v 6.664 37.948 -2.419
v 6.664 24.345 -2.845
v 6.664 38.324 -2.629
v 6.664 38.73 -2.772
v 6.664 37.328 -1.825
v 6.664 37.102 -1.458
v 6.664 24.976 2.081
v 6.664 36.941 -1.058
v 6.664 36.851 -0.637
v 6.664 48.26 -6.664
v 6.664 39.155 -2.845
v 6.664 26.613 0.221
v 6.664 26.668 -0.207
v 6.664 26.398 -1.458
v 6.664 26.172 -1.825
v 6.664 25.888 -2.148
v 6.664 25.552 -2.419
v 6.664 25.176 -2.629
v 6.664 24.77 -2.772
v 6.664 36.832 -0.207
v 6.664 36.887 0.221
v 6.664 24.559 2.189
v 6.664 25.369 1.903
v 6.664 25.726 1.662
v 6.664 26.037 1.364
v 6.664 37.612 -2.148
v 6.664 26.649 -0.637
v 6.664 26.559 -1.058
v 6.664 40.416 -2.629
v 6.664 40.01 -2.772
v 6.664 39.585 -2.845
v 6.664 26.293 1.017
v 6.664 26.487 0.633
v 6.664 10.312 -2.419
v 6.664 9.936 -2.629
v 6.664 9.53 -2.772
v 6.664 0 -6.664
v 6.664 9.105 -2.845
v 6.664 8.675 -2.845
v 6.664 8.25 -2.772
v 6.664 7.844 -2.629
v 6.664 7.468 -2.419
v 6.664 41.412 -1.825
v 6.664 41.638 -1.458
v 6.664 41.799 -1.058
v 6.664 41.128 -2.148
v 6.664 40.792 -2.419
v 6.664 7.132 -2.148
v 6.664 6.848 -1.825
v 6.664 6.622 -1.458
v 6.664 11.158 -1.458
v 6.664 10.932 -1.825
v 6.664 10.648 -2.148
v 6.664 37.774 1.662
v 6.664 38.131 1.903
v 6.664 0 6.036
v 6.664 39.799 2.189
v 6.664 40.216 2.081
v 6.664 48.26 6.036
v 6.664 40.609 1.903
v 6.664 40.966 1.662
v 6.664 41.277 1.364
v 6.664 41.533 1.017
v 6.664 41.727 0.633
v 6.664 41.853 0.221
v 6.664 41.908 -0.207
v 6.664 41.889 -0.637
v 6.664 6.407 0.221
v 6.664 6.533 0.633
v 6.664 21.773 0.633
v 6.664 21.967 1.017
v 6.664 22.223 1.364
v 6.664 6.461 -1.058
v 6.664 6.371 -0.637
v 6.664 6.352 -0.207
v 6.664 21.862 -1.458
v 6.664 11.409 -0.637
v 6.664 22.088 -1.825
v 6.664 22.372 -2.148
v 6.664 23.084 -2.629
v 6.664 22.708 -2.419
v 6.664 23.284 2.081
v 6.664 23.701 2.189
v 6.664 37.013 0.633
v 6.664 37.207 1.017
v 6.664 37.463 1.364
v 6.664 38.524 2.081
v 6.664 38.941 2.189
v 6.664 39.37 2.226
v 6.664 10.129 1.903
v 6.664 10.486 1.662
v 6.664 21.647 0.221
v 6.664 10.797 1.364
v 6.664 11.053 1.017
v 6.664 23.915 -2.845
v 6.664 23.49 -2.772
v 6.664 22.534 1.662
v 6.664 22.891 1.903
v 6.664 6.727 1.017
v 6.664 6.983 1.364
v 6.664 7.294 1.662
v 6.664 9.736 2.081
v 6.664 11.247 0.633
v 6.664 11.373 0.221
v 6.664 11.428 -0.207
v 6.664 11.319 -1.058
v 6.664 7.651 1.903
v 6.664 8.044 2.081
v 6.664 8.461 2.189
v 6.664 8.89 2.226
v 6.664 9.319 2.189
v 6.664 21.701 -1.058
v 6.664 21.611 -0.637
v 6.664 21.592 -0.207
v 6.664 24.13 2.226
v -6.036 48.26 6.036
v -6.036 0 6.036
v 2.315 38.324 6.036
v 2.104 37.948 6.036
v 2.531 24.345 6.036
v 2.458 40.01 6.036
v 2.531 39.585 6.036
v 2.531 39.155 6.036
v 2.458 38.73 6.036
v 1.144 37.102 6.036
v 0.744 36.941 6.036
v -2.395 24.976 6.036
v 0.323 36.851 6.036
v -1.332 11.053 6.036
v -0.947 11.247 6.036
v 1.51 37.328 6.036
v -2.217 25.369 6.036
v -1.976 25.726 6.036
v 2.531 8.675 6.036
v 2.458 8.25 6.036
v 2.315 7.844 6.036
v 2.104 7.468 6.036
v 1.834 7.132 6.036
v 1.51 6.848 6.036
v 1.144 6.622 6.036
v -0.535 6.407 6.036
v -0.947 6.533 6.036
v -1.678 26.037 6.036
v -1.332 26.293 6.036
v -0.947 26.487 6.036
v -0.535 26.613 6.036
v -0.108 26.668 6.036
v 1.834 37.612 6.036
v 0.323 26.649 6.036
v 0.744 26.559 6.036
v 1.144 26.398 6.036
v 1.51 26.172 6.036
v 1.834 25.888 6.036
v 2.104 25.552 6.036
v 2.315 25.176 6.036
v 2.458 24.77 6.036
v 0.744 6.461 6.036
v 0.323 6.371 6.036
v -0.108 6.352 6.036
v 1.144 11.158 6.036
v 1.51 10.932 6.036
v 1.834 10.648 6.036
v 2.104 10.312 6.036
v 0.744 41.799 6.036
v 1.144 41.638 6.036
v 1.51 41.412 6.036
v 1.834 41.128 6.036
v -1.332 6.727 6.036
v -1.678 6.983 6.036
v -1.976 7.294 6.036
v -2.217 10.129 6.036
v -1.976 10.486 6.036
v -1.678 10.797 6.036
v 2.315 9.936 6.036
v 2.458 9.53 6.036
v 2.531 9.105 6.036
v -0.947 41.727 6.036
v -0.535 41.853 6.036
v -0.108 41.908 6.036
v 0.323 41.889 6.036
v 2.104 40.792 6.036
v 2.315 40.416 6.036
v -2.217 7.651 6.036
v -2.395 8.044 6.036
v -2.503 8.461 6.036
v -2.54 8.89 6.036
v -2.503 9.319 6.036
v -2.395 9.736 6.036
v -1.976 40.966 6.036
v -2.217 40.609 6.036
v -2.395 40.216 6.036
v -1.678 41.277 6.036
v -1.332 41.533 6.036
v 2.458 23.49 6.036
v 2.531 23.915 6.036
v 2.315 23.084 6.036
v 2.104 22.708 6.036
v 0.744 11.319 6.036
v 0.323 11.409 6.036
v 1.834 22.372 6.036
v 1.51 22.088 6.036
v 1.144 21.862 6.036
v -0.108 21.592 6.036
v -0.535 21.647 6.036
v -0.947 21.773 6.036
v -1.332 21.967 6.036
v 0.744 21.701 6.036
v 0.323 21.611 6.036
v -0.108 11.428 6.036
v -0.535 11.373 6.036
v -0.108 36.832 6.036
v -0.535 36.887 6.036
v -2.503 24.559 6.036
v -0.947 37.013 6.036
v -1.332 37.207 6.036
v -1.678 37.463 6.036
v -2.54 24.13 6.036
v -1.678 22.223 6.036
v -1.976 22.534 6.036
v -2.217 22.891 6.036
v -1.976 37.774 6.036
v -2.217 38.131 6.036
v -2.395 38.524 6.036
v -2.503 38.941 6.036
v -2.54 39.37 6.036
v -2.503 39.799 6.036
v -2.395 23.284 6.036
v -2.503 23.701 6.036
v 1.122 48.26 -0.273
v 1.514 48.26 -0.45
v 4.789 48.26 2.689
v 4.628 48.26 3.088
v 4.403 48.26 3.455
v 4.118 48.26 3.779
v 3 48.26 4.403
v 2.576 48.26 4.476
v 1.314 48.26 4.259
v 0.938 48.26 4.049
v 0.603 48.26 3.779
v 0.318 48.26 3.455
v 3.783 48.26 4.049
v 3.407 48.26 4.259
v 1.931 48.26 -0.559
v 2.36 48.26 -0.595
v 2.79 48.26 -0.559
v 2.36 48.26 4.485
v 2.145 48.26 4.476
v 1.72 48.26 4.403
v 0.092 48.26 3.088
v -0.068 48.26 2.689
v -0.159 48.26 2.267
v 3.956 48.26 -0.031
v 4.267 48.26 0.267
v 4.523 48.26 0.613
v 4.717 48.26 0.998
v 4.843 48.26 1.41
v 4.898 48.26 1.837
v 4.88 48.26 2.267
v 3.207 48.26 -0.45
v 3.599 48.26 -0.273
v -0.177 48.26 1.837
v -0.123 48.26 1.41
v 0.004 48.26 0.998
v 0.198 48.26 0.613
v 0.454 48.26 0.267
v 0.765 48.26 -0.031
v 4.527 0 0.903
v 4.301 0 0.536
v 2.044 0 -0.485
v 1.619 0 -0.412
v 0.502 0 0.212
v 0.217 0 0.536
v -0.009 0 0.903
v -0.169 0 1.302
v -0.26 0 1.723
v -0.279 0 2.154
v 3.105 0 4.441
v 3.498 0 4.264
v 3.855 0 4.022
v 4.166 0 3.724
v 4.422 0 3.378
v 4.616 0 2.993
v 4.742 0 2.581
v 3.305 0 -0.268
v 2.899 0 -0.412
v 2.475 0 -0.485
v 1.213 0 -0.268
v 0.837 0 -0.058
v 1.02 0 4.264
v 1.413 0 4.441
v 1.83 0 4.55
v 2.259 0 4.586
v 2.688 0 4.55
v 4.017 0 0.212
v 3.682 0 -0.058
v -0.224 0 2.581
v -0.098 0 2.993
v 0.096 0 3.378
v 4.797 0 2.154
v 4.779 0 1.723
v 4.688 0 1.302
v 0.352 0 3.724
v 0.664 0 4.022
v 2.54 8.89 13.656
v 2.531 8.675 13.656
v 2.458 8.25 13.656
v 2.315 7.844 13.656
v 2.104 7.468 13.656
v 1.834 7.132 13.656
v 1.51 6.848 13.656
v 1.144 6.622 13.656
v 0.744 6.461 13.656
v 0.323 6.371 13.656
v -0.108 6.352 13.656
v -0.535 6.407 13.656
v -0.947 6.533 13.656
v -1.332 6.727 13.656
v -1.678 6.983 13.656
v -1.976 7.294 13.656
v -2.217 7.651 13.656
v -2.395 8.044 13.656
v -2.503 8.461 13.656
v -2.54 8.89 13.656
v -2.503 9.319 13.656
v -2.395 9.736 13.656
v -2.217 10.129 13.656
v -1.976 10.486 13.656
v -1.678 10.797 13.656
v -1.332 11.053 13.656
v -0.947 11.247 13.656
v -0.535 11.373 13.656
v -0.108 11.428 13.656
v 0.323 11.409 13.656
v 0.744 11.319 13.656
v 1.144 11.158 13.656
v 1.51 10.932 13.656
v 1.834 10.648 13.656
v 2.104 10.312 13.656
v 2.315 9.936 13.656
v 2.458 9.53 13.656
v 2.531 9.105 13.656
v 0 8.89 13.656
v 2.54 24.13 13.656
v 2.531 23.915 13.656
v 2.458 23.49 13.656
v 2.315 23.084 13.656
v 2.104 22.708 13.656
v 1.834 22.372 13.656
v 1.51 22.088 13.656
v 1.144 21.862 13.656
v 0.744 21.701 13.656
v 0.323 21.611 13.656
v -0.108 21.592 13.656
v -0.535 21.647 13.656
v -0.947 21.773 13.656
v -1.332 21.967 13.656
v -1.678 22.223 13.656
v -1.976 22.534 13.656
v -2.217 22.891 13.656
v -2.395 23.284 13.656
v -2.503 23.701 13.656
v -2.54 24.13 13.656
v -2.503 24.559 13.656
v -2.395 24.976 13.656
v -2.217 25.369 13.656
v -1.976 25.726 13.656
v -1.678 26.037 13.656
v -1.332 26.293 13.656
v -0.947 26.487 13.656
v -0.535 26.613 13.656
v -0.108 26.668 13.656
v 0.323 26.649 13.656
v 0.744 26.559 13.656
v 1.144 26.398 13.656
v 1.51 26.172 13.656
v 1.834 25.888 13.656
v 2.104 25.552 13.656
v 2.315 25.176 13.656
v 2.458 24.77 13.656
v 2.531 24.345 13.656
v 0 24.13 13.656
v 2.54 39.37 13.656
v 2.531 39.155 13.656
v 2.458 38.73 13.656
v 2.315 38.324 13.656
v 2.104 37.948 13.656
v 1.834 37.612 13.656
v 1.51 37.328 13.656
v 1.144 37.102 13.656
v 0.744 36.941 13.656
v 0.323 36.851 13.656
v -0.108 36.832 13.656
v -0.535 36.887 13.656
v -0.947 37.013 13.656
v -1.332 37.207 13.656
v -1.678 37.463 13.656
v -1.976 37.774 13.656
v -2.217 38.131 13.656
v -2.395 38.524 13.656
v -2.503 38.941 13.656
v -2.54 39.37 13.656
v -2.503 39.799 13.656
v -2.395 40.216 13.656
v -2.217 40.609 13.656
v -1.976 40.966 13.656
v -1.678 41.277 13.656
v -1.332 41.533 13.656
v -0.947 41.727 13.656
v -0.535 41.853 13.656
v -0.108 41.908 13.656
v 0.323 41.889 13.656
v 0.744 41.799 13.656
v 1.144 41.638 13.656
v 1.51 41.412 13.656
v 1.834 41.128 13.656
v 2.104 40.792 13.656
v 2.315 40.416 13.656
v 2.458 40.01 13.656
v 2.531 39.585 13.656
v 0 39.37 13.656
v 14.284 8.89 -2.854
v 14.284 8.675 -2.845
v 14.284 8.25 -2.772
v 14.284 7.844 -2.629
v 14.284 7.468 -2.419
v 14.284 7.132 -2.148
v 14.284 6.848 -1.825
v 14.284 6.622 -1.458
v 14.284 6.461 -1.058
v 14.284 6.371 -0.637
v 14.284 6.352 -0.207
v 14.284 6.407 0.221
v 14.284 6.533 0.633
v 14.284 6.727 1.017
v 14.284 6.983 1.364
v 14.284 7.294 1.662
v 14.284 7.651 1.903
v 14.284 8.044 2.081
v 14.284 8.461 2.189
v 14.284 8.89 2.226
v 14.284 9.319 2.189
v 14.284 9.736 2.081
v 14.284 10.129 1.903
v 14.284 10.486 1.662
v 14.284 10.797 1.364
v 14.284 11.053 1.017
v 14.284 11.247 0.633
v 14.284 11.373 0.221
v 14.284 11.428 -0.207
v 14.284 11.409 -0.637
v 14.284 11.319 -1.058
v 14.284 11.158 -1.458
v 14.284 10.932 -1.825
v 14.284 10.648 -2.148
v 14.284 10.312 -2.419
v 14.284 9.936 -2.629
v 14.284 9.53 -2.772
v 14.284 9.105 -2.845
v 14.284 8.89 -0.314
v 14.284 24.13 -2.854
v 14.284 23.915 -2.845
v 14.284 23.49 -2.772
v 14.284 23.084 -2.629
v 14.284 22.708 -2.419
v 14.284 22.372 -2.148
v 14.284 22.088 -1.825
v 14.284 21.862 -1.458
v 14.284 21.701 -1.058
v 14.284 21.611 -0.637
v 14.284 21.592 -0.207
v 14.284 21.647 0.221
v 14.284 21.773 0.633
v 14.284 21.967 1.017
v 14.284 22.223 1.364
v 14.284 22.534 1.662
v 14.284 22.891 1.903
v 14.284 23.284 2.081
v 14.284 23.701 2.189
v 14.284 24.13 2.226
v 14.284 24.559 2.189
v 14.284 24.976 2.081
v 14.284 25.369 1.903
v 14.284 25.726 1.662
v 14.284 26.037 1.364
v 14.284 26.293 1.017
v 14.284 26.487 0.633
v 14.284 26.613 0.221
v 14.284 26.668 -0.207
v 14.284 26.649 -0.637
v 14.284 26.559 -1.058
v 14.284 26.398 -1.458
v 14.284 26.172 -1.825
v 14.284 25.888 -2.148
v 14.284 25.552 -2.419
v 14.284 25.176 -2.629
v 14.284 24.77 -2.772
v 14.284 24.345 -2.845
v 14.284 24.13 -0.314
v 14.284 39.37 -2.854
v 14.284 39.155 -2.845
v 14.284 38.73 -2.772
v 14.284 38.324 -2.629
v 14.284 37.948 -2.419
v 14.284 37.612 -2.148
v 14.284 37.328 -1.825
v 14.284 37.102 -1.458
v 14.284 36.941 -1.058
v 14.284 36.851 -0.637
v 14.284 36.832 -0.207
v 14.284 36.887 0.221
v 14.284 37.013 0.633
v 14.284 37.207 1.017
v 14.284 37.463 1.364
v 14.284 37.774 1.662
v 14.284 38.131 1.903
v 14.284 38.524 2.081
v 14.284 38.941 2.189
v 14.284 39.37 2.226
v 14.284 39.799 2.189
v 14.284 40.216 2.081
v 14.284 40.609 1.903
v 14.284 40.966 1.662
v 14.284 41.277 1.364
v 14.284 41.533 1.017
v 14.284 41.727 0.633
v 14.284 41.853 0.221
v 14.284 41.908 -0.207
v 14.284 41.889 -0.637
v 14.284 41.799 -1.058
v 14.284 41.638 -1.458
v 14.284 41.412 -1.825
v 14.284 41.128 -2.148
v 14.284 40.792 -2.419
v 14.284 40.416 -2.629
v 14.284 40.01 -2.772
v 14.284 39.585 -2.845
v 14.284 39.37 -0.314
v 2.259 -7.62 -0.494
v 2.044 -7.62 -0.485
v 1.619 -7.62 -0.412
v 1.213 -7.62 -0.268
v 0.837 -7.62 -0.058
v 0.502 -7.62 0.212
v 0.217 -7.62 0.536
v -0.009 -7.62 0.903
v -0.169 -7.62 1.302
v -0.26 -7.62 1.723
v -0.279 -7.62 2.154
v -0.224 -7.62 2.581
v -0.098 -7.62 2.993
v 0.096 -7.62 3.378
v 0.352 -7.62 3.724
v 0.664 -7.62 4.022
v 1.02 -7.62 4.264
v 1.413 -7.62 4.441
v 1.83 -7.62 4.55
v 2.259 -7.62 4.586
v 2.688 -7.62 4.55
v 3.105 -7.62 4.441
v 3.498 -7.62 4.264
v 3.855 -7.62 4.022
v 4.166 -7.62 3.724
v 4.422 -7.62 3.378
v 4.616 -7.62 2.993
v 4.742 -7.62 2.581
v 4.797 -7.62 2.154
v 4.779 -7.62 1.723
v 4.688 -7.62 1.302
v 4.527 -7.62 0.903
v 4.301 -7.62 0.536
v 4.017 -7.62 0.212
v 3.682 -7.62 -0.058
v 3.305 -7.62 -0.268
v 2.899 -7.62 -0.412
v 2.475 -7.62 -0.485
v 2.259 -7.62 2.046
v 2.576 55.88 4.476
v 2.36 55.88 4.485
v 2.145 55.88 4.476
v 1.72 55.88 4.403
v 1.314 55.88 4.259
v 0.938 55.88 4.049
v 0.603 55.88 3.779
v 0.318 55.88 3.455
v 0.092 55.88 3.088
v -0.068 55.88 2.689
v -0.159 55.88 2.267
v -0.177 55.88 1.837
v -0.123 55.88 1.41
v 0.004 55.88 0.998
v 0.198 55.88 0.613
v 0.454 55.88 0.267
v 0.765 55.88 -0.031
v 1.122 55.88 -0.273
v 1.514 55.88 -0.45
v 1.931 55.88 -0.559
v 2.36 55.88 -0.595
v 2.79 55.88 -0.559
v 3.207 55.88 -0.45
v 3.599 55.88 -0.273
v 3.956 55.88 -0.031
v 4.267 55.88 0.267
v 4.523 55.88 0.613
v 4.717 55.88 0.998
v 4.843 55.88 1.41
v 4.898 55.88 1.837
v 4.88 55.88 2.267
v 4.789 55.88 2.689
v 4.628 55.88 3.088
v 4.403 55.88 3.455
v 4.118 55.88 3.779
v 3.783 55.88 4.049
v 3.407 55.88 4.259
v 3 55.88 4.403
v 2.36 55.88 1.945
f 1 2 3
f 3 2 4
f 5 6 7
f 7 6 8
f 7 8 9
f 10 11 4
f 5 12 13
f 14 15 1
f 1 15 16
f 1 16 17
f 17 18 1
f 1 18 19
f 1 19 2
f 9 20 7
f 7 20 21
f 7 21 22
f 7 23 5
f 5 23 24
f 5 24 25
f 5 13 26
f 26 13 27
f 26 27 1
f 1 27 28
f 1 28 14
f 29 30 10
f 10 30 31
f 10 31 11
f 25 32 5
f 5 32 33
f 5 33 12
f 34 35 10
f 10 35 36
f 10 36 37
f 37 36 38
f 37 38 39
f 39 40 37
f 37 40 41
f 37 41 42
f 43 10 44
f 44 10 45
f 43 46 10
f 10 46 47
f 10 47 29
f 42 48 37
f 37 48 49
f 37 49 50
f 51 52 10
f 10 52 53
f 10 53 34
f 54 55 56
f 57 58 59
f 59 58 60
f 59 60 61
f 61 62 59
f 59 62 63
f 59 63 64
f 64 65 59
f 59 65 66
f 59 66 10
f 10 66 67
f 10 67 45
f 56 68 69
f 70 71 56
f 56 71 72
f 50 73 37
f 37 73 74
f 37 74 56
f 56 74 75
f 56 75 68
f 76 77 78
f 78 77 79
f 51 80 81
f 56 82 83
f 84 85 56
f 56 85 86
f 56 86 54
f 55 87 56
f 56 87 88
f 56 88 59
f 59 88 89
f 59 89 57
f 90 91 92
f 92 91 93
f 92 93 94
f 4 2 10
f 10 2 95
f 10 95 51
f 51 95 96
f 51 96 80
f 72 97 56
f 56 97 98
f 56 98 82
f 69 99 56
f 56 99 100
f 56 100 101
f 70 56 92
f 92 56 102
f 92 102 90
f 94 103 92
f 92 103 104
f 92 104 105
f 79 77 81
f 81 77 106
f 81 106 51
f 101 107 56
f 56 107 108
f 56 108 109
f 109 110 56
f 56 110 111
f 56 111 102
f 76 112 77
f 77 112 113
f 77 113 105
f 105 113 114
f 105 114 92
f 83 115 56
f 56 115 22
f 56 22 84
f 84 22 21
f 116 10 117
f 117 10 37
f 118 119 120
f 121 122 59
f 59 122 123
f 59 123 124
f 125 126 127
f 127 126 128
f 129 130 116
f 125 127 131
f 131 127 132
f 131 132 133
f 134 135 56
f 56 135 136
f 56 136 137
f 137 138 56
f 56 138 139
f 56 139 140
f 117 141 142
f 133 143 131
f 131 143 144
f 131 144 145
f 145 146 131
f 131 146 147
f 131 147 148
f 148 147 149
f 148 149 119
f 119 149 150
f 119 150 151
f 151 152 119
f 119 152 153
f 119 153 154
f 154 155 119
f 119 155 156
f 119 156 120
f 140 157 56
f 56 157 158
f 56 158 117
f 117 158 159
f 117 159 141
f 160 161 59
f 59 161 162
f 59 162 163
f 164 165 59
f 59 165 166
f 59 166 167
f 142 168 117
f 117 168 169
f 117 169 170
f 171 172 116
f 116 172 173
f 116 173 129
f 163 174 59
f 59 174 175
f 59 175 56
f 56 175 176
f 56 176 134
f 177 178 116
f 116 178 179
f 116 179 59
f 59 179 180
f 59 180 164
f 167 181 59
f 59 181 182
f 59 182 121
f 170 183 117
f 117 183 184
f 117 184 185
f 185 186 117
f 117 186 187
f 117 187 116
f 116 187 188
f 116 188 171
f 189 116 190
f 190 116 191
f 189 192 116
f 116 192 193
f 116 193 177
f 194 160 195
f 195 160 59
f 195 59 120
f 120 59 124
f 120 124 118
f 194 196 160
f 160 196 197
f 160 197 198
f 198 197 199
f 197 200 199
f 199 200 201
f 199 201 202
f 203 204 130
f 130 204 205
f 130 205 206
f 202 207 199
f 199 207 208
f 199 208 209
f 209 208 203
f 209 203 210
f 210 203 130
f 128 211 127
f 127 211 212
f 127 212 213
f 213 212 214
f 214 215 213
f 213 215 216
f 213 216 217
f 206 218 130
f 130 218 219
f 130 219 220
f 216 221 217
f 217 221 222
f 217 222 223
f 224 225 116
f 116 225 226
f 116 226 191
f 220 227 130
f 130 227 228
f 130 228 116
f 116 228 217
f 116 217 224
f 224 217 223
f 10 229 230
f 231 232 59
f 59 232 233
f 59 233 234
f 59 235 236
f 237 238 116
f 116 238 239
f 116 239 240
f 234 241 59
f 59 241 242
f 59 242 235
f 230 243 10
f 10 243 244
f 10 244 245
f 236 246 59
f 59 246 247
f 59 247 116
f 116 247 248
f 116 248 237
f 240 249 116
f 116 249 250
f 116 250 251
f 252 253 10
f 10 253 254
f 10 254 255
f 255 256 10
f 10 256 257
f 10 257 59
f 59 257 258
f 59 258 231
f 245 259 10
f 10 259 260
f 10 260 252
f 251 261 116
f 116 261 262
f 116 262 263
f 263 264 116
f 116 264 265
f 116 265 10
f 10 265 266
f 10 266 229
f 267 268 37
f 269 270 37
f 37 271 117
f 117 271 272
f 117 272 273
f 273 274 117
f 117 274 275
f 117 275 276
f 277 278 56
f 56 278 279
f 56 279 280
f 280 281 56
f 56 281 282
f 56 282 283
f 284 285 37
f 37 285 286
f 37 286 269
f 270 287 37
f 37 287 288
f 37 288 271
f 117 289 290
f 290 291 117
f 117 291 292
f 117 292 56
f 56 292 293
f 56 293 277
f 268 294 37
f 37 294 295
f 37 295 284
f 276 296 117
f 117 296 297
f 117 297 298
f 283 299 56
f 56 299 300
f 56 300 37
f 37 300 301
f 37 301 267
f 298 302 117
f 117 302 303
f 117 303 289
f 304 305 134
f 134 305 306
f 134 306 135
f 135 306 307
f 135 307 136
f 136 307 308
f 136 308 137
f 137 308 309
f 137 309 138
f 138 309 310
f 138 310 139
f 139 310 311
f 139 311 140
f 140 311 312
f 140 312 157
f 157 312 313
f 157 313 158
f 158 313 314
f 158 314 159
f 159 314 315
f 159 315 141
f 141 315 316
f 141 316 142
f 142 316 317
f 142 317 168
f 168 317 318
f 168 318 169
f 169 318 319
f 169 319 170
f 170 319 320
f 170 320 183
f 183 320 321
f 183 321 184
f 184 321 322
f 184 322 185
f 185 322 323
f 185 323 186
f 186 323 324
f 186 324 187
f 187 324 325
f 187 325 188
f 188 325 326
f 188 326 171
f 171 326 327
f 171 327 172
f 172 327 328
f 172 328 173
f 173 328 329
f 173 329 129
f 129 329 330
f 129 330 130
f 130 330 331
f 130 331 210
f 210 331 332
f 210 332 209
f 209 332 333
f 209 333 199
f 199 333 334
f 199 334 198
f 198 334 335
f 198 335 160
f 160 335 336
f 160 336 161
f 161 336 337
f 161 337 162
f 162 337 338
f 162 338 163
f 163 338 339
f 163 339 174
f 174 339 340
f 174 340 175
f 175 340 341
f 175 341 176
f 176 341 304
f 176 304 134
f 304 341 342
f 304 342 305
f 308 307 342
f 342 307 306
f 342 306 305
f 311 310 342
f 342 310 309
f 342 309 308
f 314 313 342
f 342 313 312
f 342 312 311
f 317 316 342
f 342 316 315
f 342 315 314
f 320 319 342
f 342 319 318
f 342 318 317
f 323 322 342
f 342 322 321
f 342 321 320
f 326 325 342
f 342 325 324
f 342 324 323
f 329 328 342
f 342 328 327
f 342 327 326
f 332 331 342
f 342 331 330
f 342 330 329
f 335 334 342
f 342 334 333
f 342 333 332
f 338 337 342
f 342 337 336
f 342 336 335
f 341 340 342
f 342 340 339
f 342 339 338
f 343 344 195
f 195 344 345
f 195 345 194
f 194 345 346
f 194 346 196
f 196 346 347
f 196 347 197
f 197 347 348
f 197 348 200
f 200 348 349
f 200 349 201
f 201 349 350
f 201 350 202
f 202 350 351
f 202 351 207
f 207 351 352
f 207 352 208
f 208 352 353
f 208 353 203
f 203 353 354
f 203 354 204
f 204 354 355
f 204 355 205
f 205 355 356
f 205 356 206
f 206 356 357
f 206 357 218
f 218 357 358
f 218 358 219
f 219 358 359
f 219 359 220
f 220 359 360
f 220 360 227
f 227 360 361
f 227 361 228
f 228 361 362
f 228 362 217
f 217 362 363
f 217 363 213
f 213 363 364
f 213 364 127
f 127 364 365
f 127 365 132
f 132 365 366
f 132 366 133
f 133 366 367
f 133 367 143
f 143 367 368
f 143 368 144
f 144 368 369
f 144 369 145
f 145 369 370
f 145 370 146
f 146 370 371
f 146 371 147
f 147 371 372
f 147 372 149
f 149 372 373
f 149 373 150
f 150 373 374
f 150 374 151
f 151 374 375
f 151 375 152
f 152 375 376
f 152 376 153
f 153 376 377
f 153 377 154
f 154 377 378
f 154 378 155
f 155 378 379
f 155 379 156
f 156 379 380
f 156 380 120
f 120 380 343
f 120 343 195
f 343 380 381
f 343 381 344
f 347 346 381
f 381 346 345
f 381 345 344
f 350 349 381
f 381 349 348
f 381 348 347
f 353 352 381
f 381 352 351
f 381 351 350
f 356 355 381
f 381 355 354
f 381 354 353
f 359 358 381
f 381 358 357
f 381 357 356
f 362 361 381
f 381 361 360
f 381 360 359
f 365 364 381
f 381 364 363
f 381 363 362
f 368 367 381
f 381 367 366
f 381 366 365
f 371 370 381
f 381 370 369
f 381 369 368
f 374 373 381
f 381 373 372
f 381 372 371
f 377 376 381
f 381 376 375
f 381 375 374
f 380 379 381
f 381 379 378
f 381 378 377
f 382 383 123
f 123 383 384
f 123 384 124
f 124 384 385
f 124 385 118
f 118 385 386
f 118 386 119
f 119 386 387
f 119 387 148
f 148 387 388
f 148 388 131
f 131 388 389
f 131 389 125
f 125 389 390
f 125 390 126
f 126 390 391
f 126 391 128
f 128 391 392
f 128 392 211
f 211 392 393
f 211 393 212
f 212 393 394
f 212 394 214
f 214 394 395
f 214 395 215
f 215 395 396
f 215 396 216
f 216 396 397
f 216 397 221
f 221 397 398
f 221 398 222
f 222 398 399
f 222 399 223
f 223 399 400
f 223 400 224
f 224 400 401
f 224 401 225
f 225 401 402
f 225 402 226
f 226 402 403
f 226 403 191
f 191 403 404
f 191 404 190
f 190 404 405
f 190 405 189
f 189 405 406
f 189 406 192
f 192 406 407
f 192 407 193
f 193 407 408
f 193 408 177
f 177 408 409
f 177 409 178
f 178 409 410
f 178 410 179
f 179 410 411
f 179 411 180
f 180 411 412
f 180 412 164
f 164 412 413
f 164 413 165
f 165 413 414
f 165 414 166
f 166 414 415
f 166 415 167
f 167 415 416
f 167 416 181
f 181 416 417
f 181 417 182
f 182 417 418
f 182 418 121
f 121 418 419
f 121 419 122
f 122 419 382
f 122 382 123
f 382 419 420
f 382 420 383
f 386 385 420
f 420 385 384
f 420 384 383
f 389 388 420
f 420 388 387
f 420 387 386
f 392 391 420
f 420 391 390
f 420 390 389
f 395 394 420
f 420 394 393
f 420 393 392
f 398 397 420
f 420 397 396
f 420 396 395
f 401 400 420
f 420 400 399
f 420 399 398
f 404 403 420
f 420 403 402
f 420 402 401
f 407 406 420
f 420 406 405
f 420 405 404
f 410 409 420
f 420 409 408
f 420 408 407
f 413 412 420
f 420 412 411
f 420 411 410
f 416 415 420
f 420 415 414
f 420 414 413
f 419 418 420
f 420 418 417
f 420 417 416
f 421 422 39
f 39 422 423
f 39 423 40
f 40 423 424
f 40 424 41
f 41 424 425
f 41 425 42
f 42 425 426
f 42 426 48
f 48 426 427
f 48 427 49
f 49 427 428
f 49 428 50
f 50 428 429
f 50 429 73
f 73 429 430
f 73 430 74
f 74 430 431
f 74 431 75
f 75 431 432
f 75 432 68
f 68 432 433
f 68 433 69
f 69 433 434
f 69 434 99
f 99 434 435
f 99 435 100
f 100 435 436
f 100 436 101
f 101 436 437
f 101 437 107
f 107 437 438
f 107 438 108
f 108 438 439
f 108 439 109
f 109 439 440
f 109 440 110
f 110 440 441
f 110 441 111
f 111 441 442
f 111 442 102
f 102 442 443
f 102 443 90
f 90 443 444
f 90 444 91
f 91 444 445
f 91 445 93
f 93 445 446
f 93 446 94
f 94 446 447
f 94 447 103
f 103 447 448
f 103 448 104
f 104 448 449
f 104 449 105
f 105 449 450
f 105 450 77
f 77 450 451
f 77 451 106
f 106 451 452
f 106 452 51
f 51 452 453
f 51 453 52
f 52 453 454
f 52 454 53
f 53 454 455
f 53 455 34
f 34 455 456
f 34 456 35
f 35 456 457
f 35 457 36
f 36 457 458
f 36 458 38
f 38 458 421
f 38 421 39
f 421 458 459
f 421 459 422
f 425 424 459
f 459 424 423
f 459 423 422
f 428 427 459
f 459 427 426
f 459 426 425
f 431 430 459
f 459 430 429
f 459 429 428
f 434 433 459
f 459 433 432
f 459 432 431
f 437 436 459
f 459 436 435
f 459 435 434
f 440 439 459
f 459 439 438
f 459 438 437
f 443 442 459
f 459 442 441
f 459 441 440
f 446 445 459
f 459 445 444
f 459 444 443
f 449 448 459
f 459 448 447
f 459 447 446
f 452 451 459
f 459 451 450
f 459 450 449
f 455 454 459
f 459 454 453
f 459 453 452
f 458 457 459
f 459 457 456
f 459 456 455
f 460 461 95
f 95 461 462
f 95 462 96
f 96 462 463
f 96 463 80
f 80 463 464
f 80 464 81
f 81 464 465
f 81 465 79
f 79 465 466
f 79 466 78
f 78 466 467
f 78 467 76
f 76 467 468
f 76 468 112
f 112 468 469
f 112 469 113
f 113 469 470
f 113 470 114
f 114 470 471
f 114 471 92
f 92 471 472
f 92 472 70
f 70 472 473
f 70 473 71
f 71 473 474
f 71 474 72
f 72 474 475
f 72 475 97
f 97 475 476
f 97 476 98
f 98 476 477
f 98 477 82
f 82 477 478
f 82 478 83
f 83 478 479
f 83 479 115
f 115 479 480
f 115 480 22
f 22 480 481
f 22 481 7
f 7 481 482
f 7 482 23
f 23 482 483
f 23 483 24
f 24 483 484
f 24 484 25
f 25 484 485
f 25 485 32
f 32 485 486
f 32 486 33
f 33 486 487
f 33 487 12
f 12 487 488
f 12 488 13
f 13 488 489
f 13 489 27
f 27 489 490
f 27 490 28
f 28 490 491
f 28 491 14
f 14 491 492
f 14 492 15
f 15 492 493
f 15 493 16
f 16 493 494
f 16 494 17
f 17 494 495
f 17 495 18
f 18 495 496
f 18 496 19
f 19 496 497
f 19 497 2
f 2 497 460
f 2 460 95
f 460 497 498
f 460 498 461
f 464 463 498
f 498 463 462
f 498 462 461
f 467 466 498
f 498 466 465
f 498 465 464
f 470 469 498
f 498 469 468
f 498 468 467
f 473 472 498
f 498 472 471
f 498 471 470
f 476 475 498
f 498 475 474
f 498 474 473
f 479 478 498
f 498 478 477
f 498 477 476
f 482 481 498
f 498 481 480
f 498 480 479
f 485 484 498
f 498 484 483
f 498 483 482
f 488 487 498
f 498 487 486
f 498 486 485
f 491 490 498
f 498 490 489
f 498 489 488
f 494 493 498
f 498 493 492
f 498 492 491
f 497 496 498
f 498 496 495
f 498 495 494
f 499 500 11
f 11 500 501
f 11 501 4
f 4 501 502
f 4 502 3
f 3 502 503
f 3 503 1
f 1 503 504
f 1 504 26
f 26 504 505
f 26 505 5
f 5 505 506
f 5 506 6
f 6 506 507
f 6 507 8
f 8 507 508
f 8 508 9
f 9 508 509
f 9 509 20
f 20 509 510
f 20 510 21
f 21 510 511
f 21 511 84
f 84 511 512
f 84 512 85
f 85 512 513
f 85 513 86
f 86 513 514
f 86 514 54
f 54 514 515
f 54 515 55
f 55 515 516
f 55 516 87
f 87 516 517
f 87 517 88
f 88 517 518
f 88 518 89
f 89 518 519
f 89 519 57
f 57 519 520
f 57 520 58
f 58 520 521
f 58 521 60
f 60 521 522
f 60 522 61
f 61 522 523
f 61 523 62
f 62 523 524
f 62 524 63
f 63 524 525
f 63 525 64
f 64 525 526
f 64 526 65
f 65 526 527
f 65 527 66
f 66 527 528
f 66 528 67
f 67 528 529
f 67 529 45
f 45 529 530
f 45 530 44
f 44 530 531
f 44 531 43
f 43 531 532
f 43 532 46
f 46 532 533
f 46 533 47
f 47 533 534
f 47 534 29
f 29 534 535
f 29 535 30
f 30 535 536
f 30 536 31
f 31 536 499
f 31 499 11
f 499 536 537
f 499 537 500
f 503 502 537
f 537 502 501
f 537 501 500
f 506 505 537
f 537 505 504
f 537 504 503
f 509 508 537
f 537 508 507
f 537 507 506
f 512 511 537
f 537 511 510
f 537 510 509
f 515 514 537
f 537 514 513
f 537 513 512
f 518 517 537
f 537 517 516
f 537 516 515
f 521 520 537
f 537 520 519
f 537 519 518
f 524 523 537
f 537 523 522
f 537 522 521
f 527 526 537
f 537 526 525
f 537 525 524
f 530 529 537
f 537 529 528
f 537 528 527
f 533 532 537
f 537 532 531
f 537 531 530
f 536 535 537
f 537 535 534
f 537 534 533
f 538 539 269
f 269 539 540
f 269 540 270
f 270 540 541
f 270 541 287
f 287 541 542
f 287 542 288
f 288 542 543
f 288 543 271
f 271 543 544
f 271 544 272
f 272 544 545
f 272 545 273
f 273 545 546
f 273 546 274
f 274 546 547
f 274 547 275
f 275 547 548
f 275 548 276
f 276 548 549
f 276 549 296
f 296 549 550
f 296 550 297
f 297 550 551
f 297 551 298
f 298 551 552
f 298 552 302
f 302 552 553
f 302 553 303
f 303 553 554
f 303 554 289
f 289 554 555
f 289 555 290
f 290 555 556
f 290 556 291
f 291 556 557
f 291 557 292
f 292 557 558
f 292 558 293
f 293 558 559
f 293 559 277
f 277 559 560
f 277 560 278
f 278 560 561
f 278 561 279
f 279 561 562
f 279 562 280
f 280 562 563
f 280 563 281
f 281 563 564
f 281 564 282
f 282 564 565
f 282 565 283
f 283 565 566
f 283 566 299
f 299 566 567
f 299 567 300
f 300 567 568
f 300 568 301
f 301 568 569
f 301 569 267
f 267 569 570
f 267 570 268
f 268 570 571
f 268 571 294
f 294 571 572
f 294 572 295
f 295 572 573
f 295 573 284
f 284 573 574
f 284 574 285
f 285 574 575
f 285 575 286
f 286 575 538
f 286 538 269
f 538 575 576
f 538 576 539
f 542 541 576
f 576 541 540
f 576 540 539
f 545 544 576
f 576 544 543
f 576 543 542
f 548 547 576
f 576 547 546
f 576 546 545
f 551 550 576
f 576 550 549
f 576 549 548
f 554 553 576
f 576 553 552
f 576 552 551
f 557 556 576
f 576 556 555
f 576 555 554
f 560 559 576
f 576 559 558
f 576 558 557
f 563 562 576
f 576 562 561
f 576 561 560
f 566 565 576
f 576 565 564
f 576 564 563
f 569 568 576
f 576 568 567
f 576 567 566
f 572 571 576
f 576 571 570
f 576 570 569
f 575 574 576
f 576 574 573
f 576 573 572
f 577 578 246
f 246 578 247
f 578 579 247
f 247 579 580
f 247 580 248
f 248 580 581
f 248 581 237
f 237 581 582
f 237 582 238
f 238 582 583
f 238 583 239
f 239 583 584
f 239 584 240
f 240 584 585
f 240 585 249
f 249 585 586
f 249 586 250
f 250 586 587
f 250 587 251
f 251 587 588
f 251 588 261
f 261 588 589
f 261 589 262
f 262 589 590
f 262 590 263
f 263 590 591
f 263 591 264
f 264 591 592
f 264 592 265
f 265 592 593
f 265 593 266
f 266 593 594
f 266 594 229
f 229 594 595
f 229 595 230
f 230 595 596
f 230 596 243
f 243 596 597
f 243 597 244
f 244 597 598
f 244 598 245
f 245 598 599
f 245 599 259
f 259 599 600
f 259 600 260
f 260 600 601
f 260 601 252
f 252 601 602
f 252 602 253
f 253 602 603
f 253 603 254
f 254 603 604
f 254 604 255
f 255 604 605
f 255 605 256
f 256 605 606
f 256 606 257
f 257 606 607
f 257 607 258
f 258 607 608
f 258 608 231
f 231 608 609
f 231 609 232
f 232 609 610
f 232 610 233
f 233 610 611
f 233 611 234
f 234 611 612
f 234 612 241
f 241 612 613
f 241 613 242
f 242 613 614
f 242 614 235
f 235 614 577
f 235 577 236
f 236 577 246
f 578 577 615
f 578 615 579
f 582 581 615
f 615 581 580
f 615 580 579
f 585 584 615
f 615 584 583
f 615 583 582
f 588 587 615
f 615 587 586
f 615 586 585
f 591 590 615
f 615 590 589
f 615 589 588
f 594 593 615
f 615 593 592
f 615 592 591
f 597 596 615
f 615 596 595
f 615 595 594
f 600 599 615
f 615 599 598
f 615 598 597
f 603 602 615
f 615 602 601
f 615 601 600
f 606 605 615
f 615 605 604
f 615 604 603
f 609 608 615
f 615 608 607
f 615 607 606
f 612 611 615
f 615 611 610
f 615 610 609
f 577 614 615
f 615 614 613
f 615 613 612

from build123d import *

# Parameters (mm, degrees)
BOSS_EXTRUDE1_DEPTH = 48.26
SKETCH6_R           = 2.54
BOSS_EXTRUDE3_DEPTH = 7.62
SKETCH7_R           = 2.54
BOSS_EXTRUDE4_DEPTH = 7.62
SKETCH8_R           = 2.54
BOSS_EXTRUDE5_DEPTH = 7.62
SKETCH9_R           = 2.54
BOSS_EXTRUDE6_DEPTH = 7.62


with BuildPart() as part:
    # Sketch4 → Boss-Extrude1 (new body)
    with BuildSketch(Plane(origin=(0, 0, 0), x_dir=(1, 0, 0), z_dir=(0, 1, 0))):
        Polygon((-6.035613044, -6.035613044), (6.664386956, 6.664386956), (6.664386956, -6.035613044), align=None)
    extrude(amount=BOSS_EXTRUDE1_DEPTH)

    # Sketch6 → Boss-Extrude3 (add)
    with BuildSketch(Plane.XY.offset(6.035613044)):
        with Locations(Location((0, 8.89, 0), (0, 0, 180))):
            Circle(SKETCH6_R)
        with Locations(Location((0, 24.13, 0), (0, 0, 180))):
            Circle(SKETCH6_R)
        with Locations(Location((0, 39.37, 0), (0, 0, 180))):
            Circle(SKETCH6_R)
    extrude(amount=BOSS_EXTRUDE3_DEPTH)

    # Sketch7 → Boss-Extrude4 (add)
    with BuildSketch(Plane(origin=(6.664386956, 0, 0), x_dir=(0, 0, -1), z_dir=(1, 0, 0))):
        with Locations(Location((0.314386956, 8.89, 0), (0, 0, 180))):
            Circle(SKETCH7_R)
        with Locations(Location((0.314386956, 24.13, 0), (0, 0, 180))):
            Circle(SKETCH7_R)
        with Locations(Location((0.314386956, 39.37, 0), (0, 0, 180))):
            Circle(SKETCH7_R)
    extrude(amount=BOSS_EXTRUDE4_DEPTH)

    # Sketch8 → Boss-Extrude5 (add)
    with BuildSketch(Plane.XZ):
        with Locations(Location((2.25920074, 2.046048879, 0), (0, 0, 90))):
            Circle(SKETCH8_R)
    extrude(amount=BOSS_EXTRUDE5_DEPTH)

    # Sketch9 → Boss-Extrude6 (add)
    with BuildSketch(Plane(origin=(0, 48.26, 0), x_dir=(1, 0, 0), z_dir=(0, 1, 0))):
        with Locations(Location((2.360435834, -1.944813785, 0), (0, 0, 270))):
            Circle(SKETCH9_R)
    extrude(amount=BOSS_EXTRUDE6_DEPTH)


solid = part.part
